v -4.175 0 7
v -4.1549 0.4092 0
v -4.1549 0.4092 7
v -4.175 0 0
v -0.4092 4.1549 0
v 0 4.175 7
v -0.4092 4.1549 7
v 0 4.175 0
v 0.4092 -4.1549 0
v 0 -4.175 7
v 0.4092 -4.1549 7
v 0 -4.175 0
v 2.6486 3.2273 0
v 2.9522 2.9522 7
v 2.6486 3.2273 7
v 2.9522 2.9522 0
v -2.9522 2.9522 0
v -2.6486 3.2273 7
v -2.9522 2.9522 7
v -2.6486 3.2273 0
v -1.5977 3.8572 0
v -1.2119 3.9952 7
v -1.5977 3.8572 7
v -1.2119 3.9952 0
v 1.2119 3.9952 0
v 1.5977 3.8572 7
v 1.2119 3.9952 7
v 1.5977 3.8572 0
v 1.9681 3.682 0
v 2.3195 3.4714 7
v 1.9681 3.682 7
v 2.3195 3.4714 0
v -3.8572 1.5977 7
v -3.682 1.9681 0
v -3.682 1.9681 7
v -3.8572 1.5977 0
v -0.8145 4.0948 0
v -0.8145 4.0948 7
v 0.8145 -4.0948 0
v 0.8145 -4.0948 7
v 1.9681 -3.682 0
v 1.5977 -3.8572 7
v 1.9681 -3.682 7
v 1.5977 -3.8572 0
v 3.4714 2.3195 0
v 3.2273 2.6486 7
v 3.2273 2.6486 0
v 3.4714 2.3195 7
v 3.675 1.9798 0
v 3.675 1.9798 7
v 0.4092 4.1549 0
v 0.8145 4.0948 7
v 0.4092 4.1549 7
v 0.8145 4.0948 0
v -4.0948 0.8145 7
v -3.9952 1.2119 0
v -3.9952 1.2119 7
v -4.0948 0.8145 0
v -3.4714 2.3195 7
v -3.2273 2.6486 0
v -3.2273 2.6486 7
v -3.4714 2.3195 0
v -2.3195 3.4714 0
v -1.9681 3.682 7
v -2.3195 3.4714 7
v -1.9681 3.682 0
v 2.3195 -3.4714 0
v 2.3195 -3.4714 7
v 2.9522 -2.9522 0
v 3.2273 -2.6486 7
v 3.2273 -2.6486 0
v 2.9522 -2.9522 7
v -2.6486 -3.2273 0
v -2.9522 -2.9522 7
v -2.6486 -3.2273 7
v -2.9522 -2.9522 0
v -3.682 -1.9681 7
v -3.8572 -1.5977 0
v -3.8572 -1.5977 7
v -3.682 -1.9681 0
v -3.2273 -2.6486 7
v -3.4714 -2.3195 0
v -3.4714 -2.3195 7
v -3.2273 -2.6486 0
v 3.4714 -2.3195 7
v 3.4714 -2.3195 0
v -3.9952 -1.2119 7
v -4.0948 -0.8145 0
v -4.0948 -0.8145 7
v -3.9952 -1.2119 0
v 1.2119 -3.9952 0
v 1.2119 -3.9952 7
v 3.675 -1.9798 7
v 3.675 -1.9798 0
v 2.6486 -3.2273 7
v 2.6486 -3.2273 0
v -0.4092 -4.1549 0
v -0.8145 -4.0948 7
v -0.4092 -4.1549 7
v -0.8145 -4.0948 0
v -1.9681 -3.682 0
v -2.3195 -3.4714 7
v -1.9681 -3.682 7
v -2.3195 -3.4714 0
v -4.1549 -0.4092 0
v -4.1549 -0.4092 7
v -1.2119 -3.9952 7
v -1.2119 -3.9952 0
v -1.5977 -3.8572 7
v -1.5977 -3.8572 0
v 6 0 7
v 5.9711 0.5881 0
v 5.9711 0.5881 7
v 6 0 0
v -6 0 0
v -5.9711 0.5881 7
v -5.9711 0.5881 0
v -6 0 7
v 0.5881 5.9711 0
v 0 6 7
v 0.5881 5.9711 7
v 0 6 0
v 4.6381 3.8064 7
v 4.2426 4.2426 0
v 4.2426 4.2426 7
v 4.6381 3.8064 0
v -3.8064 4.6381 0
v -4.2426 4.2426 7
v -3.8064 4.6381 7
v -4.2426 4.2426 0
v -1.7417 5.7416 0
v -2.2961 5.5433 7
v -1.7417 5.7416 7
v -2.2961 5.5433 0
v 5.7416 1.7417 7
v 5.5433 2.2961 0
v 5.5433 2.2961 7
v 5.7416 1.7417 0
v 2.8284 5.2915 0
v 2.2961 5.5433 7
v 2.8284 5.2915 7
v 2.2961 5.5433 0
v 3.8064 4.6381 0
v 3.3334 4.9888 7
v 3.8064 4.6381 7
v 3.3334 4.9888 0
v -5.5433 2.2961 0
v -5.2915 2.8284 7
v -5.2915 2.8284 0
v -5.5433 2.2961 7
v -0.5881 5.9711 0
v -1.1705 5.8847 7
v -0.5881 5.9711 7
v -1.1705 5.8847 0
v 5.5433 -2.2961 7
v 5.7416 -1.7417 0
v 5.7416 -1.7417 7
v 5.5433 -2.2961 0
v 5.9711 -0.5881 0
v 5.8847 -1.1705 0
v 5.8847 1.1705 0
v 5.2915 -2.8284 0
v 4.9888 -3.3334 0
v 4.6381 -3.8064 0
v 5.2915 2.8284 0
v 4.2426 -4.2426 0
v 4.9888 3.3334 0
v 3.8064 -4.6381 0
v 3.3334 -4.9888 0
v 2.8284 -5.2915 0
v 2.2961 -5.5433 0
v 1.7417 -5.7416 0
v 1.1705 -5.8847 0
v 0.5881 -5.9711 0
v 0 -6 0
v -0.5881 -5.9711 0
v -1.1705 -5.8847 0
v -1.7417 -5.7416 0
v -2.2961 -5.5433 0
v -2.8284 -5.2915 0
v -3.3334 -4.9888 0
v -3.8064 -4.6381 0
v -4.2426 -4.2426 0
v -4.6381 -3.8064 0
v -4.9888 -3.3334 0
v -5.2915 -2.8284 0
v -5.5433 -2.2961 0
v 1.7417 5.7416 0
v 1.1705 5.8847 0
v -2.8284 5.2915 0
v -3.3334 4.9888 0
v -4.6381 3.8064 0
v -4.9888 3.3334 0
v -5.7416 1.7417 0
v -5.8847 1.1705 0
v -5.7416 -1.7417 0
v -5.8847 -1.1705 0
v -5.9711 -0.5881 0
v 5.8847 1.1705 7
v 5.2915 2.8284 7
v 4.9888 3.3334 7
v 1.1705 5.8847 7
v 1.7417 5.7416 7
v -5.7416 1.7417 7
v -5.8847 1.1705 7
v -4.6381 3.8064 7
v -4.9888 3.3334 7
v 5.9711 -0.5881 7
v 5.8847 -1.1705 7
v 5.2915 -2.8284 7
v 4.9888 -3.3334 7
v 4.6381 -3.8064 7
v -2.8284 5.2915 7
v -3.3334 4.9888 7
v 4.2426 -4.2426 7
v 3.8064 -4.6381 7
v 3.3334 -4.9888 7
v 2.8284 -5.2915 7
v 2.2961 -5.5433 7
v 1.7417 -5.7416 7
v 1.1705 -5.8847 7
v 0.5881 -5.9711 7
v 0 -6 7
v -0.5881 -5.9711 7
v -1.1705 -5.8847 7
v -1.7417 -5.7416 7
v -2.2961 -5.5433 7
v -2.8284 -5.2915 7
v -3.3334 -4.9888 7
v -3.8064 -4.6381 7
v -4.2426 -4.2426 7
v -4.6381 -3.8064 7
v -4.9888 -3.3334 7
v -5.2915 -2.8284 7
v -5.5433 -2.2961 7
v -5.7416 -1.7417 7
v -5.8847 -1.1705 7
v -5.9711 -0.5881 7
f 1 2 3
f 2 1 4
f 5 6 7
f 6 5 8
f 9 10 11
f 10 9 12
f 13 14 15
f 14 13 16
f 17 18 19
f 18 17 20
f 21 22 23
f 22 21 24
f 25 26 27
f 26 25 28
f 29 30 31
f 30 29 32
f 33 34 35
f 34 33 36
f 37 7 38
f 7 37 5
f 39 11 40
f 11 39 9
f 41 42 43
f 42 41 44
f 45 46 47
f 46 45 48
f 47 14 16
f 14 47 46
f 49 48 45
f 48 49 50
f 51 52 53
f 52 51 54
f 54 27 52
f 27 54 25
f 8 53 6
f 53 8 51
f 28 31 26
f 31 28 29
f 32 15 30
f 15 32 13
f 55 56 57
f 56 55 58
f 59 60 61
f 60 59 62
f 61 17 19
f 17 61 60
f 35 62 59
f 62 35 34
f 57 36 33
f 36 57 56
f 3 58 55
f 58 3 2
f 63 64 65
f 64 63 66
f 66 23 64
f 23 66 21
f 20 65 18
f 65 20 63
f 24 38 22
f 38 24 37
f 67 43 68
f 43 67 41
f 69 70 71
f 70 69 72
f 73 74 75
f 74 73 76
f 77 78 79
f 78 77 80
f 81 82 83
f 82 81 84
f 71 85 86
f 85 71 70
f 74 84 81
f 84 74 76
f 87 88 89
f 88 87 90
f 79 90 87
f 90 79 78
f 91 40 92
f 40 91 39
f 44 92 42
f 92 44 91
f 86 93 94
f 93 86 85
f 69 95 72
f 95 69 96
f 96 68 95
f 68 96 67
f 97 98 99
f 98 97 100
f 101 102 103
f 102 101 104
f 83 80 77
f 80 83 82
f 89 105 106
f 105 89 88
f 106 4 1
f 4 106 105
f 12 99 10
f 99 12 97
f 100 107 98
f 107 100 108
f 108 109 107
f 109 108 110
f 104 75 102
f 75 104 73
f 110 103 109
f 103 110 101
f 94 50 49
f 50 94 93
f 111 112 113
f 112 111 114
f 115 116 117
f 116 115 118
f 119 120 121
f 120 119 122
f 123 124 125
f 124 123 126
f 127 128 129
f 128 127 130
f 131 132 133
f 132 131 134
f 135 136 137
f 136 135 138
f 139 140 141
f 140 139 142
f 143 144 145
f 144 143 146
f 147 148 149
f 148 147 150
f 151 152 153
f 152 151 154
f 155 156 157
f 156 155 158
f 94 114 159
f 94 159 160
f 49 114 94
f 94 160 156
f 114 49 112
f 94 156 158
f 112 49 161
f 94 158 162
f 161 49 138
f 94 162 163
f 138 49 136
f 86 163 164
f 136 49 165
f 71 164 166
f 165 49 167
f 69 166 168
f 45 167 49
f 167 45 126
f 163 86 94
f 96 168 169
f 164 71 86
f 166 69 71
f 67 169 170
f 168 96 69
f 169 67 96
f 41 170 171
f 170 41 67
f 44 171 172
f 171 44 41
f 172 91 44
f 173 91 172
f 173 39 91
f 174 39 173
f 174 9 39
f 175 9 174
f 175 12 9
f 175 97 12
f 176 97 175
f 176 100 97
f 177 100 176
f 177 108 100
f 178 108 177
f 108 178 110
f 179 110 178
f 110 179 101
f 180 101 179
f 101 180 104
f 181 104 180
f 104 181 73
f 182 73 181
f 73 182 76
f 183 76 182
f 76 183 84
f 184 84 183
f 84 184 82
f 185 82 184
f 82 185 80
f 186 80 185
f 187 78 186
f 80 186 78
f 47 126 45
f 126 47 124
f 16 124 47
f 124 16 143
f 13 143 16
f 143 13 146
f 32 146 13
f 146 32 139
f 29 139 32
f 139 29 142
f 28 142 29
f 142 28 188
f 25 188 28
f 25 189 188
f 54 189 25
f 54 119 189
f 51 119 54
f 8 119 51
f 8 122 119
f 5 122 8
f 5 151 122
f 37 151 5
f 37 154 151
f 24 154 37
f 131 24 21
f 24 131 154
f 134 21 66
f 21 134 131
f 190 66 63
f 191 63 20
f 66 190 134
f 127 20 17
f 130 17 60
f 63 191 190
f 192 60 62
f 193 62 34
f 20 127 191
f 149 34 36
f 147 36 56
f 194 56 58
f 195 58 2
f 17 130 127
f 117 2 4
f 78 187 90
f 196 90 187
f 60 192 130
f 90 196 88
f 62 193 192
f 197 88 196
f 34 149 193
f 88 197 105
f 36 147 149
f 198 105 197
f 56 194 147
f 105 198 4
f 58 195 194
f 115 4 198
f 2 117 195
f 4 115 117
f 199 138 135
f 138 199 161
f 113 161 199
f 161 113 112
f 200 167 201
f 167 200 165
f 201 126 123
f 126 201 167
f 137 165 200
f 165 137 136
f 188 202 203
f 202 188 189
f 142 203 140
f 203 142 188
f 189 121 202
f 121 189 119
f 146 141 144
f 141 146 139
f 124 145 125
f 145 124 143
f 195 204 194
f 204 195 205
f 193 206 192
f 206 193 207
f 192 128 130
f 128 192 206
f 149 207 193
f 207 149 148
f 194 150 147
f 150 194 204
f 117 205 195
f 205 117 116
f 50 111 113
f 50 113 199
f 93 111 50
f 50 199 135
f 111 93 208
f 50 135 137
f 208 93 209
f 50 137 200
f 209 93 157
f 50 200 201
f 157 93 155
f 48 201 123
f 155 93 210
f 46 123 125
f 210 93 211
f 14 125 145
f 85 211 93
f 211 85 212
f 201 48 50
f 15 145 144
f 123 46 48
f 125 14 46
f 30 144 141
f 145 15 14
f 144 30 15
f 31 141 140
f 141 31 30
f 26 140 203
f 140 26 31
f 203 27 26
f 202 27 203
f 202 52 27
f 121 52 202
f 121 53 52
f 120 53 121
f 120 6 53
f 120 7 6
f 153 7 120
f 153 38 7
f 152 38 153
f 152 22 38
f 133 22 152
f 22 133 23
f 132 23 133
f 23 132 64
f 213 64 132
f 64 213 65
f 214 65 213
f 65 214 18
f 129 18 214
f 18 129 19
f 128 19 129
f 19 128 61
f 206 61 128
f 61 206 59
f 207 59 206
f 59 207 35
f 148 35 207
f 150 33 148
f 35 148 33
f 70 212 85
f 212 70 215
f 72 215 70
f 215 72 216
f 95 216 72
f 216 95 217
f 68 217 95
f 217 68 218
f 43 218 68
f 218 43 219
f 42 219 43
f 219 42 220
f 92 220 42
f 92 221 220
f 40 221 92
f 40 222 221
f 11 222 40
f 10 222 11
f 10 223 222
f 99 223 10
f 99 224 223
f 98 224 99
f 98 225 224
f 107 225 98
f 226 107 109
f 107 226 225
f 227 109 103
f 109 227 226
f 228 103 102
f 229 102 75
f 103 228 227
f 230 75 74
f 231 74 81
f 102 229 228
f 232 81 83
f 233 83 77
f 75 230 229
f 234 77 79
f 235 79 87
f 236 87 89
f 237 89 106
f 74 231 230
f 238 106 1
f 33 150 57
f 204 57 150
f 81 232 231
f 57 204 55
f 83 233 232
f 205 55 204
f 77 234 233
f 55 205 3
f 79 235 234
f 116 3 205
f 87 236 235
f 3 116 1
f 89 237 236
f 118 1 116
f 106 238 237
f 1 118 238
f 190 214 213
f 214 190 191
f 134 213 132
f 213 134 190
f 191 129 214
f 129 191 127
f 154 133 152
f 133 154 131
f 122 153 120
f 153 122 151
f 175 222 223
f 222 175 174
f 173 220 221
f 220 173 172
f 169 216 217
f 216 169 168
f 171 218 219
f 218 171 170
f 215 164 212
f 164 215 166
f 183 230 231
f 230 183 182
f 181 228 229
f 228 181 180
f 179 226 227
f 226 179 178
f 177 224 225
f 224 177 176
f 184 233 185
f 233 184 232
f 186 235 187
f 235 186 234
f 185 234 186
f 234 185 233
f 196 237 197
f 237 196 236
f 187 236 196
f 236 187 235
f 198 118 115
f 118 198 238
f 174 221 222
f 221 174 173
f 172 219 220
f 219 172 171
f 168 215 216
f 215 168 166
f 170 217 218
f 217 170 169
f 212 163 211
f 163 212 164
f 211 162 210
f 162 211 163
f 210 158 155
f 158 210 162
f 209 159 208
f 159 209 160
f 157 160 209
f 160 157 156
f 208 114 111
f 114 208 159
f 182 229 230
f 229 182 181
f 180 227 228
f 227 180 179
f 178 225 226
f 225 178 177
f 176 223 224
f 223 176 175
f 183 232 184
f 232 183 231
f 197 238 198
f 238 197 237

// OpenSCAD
// Gen-DT — gap sleeve: rigid spacer on the shaft BETWEEN the two rotor carriers (passes through the stator
// hole). Length = m2m, so it sets the magnet gap and carries the full magnet pull. Print x1, upright.
include <parameters.scad>;
$fn = 64;
// D-flat keyed bore: flat faces +X (angle 0 = magnet pocket 0 = index notch)
module dflat_bore(h) {
    intersection() {
        cylinder(d=shaft_bore, h=h);
        translate([-shaft_bore, -shaft_bore, 0]) cube([shaft_bore + dflat_x, 2*shaft_bore, h]);
    }
}

difference() {
    cylinder(d=sleeve_od, h=m2m);
    translate([0, 0, -0.1]) dflat_bore(m2m + 0.2);
}
